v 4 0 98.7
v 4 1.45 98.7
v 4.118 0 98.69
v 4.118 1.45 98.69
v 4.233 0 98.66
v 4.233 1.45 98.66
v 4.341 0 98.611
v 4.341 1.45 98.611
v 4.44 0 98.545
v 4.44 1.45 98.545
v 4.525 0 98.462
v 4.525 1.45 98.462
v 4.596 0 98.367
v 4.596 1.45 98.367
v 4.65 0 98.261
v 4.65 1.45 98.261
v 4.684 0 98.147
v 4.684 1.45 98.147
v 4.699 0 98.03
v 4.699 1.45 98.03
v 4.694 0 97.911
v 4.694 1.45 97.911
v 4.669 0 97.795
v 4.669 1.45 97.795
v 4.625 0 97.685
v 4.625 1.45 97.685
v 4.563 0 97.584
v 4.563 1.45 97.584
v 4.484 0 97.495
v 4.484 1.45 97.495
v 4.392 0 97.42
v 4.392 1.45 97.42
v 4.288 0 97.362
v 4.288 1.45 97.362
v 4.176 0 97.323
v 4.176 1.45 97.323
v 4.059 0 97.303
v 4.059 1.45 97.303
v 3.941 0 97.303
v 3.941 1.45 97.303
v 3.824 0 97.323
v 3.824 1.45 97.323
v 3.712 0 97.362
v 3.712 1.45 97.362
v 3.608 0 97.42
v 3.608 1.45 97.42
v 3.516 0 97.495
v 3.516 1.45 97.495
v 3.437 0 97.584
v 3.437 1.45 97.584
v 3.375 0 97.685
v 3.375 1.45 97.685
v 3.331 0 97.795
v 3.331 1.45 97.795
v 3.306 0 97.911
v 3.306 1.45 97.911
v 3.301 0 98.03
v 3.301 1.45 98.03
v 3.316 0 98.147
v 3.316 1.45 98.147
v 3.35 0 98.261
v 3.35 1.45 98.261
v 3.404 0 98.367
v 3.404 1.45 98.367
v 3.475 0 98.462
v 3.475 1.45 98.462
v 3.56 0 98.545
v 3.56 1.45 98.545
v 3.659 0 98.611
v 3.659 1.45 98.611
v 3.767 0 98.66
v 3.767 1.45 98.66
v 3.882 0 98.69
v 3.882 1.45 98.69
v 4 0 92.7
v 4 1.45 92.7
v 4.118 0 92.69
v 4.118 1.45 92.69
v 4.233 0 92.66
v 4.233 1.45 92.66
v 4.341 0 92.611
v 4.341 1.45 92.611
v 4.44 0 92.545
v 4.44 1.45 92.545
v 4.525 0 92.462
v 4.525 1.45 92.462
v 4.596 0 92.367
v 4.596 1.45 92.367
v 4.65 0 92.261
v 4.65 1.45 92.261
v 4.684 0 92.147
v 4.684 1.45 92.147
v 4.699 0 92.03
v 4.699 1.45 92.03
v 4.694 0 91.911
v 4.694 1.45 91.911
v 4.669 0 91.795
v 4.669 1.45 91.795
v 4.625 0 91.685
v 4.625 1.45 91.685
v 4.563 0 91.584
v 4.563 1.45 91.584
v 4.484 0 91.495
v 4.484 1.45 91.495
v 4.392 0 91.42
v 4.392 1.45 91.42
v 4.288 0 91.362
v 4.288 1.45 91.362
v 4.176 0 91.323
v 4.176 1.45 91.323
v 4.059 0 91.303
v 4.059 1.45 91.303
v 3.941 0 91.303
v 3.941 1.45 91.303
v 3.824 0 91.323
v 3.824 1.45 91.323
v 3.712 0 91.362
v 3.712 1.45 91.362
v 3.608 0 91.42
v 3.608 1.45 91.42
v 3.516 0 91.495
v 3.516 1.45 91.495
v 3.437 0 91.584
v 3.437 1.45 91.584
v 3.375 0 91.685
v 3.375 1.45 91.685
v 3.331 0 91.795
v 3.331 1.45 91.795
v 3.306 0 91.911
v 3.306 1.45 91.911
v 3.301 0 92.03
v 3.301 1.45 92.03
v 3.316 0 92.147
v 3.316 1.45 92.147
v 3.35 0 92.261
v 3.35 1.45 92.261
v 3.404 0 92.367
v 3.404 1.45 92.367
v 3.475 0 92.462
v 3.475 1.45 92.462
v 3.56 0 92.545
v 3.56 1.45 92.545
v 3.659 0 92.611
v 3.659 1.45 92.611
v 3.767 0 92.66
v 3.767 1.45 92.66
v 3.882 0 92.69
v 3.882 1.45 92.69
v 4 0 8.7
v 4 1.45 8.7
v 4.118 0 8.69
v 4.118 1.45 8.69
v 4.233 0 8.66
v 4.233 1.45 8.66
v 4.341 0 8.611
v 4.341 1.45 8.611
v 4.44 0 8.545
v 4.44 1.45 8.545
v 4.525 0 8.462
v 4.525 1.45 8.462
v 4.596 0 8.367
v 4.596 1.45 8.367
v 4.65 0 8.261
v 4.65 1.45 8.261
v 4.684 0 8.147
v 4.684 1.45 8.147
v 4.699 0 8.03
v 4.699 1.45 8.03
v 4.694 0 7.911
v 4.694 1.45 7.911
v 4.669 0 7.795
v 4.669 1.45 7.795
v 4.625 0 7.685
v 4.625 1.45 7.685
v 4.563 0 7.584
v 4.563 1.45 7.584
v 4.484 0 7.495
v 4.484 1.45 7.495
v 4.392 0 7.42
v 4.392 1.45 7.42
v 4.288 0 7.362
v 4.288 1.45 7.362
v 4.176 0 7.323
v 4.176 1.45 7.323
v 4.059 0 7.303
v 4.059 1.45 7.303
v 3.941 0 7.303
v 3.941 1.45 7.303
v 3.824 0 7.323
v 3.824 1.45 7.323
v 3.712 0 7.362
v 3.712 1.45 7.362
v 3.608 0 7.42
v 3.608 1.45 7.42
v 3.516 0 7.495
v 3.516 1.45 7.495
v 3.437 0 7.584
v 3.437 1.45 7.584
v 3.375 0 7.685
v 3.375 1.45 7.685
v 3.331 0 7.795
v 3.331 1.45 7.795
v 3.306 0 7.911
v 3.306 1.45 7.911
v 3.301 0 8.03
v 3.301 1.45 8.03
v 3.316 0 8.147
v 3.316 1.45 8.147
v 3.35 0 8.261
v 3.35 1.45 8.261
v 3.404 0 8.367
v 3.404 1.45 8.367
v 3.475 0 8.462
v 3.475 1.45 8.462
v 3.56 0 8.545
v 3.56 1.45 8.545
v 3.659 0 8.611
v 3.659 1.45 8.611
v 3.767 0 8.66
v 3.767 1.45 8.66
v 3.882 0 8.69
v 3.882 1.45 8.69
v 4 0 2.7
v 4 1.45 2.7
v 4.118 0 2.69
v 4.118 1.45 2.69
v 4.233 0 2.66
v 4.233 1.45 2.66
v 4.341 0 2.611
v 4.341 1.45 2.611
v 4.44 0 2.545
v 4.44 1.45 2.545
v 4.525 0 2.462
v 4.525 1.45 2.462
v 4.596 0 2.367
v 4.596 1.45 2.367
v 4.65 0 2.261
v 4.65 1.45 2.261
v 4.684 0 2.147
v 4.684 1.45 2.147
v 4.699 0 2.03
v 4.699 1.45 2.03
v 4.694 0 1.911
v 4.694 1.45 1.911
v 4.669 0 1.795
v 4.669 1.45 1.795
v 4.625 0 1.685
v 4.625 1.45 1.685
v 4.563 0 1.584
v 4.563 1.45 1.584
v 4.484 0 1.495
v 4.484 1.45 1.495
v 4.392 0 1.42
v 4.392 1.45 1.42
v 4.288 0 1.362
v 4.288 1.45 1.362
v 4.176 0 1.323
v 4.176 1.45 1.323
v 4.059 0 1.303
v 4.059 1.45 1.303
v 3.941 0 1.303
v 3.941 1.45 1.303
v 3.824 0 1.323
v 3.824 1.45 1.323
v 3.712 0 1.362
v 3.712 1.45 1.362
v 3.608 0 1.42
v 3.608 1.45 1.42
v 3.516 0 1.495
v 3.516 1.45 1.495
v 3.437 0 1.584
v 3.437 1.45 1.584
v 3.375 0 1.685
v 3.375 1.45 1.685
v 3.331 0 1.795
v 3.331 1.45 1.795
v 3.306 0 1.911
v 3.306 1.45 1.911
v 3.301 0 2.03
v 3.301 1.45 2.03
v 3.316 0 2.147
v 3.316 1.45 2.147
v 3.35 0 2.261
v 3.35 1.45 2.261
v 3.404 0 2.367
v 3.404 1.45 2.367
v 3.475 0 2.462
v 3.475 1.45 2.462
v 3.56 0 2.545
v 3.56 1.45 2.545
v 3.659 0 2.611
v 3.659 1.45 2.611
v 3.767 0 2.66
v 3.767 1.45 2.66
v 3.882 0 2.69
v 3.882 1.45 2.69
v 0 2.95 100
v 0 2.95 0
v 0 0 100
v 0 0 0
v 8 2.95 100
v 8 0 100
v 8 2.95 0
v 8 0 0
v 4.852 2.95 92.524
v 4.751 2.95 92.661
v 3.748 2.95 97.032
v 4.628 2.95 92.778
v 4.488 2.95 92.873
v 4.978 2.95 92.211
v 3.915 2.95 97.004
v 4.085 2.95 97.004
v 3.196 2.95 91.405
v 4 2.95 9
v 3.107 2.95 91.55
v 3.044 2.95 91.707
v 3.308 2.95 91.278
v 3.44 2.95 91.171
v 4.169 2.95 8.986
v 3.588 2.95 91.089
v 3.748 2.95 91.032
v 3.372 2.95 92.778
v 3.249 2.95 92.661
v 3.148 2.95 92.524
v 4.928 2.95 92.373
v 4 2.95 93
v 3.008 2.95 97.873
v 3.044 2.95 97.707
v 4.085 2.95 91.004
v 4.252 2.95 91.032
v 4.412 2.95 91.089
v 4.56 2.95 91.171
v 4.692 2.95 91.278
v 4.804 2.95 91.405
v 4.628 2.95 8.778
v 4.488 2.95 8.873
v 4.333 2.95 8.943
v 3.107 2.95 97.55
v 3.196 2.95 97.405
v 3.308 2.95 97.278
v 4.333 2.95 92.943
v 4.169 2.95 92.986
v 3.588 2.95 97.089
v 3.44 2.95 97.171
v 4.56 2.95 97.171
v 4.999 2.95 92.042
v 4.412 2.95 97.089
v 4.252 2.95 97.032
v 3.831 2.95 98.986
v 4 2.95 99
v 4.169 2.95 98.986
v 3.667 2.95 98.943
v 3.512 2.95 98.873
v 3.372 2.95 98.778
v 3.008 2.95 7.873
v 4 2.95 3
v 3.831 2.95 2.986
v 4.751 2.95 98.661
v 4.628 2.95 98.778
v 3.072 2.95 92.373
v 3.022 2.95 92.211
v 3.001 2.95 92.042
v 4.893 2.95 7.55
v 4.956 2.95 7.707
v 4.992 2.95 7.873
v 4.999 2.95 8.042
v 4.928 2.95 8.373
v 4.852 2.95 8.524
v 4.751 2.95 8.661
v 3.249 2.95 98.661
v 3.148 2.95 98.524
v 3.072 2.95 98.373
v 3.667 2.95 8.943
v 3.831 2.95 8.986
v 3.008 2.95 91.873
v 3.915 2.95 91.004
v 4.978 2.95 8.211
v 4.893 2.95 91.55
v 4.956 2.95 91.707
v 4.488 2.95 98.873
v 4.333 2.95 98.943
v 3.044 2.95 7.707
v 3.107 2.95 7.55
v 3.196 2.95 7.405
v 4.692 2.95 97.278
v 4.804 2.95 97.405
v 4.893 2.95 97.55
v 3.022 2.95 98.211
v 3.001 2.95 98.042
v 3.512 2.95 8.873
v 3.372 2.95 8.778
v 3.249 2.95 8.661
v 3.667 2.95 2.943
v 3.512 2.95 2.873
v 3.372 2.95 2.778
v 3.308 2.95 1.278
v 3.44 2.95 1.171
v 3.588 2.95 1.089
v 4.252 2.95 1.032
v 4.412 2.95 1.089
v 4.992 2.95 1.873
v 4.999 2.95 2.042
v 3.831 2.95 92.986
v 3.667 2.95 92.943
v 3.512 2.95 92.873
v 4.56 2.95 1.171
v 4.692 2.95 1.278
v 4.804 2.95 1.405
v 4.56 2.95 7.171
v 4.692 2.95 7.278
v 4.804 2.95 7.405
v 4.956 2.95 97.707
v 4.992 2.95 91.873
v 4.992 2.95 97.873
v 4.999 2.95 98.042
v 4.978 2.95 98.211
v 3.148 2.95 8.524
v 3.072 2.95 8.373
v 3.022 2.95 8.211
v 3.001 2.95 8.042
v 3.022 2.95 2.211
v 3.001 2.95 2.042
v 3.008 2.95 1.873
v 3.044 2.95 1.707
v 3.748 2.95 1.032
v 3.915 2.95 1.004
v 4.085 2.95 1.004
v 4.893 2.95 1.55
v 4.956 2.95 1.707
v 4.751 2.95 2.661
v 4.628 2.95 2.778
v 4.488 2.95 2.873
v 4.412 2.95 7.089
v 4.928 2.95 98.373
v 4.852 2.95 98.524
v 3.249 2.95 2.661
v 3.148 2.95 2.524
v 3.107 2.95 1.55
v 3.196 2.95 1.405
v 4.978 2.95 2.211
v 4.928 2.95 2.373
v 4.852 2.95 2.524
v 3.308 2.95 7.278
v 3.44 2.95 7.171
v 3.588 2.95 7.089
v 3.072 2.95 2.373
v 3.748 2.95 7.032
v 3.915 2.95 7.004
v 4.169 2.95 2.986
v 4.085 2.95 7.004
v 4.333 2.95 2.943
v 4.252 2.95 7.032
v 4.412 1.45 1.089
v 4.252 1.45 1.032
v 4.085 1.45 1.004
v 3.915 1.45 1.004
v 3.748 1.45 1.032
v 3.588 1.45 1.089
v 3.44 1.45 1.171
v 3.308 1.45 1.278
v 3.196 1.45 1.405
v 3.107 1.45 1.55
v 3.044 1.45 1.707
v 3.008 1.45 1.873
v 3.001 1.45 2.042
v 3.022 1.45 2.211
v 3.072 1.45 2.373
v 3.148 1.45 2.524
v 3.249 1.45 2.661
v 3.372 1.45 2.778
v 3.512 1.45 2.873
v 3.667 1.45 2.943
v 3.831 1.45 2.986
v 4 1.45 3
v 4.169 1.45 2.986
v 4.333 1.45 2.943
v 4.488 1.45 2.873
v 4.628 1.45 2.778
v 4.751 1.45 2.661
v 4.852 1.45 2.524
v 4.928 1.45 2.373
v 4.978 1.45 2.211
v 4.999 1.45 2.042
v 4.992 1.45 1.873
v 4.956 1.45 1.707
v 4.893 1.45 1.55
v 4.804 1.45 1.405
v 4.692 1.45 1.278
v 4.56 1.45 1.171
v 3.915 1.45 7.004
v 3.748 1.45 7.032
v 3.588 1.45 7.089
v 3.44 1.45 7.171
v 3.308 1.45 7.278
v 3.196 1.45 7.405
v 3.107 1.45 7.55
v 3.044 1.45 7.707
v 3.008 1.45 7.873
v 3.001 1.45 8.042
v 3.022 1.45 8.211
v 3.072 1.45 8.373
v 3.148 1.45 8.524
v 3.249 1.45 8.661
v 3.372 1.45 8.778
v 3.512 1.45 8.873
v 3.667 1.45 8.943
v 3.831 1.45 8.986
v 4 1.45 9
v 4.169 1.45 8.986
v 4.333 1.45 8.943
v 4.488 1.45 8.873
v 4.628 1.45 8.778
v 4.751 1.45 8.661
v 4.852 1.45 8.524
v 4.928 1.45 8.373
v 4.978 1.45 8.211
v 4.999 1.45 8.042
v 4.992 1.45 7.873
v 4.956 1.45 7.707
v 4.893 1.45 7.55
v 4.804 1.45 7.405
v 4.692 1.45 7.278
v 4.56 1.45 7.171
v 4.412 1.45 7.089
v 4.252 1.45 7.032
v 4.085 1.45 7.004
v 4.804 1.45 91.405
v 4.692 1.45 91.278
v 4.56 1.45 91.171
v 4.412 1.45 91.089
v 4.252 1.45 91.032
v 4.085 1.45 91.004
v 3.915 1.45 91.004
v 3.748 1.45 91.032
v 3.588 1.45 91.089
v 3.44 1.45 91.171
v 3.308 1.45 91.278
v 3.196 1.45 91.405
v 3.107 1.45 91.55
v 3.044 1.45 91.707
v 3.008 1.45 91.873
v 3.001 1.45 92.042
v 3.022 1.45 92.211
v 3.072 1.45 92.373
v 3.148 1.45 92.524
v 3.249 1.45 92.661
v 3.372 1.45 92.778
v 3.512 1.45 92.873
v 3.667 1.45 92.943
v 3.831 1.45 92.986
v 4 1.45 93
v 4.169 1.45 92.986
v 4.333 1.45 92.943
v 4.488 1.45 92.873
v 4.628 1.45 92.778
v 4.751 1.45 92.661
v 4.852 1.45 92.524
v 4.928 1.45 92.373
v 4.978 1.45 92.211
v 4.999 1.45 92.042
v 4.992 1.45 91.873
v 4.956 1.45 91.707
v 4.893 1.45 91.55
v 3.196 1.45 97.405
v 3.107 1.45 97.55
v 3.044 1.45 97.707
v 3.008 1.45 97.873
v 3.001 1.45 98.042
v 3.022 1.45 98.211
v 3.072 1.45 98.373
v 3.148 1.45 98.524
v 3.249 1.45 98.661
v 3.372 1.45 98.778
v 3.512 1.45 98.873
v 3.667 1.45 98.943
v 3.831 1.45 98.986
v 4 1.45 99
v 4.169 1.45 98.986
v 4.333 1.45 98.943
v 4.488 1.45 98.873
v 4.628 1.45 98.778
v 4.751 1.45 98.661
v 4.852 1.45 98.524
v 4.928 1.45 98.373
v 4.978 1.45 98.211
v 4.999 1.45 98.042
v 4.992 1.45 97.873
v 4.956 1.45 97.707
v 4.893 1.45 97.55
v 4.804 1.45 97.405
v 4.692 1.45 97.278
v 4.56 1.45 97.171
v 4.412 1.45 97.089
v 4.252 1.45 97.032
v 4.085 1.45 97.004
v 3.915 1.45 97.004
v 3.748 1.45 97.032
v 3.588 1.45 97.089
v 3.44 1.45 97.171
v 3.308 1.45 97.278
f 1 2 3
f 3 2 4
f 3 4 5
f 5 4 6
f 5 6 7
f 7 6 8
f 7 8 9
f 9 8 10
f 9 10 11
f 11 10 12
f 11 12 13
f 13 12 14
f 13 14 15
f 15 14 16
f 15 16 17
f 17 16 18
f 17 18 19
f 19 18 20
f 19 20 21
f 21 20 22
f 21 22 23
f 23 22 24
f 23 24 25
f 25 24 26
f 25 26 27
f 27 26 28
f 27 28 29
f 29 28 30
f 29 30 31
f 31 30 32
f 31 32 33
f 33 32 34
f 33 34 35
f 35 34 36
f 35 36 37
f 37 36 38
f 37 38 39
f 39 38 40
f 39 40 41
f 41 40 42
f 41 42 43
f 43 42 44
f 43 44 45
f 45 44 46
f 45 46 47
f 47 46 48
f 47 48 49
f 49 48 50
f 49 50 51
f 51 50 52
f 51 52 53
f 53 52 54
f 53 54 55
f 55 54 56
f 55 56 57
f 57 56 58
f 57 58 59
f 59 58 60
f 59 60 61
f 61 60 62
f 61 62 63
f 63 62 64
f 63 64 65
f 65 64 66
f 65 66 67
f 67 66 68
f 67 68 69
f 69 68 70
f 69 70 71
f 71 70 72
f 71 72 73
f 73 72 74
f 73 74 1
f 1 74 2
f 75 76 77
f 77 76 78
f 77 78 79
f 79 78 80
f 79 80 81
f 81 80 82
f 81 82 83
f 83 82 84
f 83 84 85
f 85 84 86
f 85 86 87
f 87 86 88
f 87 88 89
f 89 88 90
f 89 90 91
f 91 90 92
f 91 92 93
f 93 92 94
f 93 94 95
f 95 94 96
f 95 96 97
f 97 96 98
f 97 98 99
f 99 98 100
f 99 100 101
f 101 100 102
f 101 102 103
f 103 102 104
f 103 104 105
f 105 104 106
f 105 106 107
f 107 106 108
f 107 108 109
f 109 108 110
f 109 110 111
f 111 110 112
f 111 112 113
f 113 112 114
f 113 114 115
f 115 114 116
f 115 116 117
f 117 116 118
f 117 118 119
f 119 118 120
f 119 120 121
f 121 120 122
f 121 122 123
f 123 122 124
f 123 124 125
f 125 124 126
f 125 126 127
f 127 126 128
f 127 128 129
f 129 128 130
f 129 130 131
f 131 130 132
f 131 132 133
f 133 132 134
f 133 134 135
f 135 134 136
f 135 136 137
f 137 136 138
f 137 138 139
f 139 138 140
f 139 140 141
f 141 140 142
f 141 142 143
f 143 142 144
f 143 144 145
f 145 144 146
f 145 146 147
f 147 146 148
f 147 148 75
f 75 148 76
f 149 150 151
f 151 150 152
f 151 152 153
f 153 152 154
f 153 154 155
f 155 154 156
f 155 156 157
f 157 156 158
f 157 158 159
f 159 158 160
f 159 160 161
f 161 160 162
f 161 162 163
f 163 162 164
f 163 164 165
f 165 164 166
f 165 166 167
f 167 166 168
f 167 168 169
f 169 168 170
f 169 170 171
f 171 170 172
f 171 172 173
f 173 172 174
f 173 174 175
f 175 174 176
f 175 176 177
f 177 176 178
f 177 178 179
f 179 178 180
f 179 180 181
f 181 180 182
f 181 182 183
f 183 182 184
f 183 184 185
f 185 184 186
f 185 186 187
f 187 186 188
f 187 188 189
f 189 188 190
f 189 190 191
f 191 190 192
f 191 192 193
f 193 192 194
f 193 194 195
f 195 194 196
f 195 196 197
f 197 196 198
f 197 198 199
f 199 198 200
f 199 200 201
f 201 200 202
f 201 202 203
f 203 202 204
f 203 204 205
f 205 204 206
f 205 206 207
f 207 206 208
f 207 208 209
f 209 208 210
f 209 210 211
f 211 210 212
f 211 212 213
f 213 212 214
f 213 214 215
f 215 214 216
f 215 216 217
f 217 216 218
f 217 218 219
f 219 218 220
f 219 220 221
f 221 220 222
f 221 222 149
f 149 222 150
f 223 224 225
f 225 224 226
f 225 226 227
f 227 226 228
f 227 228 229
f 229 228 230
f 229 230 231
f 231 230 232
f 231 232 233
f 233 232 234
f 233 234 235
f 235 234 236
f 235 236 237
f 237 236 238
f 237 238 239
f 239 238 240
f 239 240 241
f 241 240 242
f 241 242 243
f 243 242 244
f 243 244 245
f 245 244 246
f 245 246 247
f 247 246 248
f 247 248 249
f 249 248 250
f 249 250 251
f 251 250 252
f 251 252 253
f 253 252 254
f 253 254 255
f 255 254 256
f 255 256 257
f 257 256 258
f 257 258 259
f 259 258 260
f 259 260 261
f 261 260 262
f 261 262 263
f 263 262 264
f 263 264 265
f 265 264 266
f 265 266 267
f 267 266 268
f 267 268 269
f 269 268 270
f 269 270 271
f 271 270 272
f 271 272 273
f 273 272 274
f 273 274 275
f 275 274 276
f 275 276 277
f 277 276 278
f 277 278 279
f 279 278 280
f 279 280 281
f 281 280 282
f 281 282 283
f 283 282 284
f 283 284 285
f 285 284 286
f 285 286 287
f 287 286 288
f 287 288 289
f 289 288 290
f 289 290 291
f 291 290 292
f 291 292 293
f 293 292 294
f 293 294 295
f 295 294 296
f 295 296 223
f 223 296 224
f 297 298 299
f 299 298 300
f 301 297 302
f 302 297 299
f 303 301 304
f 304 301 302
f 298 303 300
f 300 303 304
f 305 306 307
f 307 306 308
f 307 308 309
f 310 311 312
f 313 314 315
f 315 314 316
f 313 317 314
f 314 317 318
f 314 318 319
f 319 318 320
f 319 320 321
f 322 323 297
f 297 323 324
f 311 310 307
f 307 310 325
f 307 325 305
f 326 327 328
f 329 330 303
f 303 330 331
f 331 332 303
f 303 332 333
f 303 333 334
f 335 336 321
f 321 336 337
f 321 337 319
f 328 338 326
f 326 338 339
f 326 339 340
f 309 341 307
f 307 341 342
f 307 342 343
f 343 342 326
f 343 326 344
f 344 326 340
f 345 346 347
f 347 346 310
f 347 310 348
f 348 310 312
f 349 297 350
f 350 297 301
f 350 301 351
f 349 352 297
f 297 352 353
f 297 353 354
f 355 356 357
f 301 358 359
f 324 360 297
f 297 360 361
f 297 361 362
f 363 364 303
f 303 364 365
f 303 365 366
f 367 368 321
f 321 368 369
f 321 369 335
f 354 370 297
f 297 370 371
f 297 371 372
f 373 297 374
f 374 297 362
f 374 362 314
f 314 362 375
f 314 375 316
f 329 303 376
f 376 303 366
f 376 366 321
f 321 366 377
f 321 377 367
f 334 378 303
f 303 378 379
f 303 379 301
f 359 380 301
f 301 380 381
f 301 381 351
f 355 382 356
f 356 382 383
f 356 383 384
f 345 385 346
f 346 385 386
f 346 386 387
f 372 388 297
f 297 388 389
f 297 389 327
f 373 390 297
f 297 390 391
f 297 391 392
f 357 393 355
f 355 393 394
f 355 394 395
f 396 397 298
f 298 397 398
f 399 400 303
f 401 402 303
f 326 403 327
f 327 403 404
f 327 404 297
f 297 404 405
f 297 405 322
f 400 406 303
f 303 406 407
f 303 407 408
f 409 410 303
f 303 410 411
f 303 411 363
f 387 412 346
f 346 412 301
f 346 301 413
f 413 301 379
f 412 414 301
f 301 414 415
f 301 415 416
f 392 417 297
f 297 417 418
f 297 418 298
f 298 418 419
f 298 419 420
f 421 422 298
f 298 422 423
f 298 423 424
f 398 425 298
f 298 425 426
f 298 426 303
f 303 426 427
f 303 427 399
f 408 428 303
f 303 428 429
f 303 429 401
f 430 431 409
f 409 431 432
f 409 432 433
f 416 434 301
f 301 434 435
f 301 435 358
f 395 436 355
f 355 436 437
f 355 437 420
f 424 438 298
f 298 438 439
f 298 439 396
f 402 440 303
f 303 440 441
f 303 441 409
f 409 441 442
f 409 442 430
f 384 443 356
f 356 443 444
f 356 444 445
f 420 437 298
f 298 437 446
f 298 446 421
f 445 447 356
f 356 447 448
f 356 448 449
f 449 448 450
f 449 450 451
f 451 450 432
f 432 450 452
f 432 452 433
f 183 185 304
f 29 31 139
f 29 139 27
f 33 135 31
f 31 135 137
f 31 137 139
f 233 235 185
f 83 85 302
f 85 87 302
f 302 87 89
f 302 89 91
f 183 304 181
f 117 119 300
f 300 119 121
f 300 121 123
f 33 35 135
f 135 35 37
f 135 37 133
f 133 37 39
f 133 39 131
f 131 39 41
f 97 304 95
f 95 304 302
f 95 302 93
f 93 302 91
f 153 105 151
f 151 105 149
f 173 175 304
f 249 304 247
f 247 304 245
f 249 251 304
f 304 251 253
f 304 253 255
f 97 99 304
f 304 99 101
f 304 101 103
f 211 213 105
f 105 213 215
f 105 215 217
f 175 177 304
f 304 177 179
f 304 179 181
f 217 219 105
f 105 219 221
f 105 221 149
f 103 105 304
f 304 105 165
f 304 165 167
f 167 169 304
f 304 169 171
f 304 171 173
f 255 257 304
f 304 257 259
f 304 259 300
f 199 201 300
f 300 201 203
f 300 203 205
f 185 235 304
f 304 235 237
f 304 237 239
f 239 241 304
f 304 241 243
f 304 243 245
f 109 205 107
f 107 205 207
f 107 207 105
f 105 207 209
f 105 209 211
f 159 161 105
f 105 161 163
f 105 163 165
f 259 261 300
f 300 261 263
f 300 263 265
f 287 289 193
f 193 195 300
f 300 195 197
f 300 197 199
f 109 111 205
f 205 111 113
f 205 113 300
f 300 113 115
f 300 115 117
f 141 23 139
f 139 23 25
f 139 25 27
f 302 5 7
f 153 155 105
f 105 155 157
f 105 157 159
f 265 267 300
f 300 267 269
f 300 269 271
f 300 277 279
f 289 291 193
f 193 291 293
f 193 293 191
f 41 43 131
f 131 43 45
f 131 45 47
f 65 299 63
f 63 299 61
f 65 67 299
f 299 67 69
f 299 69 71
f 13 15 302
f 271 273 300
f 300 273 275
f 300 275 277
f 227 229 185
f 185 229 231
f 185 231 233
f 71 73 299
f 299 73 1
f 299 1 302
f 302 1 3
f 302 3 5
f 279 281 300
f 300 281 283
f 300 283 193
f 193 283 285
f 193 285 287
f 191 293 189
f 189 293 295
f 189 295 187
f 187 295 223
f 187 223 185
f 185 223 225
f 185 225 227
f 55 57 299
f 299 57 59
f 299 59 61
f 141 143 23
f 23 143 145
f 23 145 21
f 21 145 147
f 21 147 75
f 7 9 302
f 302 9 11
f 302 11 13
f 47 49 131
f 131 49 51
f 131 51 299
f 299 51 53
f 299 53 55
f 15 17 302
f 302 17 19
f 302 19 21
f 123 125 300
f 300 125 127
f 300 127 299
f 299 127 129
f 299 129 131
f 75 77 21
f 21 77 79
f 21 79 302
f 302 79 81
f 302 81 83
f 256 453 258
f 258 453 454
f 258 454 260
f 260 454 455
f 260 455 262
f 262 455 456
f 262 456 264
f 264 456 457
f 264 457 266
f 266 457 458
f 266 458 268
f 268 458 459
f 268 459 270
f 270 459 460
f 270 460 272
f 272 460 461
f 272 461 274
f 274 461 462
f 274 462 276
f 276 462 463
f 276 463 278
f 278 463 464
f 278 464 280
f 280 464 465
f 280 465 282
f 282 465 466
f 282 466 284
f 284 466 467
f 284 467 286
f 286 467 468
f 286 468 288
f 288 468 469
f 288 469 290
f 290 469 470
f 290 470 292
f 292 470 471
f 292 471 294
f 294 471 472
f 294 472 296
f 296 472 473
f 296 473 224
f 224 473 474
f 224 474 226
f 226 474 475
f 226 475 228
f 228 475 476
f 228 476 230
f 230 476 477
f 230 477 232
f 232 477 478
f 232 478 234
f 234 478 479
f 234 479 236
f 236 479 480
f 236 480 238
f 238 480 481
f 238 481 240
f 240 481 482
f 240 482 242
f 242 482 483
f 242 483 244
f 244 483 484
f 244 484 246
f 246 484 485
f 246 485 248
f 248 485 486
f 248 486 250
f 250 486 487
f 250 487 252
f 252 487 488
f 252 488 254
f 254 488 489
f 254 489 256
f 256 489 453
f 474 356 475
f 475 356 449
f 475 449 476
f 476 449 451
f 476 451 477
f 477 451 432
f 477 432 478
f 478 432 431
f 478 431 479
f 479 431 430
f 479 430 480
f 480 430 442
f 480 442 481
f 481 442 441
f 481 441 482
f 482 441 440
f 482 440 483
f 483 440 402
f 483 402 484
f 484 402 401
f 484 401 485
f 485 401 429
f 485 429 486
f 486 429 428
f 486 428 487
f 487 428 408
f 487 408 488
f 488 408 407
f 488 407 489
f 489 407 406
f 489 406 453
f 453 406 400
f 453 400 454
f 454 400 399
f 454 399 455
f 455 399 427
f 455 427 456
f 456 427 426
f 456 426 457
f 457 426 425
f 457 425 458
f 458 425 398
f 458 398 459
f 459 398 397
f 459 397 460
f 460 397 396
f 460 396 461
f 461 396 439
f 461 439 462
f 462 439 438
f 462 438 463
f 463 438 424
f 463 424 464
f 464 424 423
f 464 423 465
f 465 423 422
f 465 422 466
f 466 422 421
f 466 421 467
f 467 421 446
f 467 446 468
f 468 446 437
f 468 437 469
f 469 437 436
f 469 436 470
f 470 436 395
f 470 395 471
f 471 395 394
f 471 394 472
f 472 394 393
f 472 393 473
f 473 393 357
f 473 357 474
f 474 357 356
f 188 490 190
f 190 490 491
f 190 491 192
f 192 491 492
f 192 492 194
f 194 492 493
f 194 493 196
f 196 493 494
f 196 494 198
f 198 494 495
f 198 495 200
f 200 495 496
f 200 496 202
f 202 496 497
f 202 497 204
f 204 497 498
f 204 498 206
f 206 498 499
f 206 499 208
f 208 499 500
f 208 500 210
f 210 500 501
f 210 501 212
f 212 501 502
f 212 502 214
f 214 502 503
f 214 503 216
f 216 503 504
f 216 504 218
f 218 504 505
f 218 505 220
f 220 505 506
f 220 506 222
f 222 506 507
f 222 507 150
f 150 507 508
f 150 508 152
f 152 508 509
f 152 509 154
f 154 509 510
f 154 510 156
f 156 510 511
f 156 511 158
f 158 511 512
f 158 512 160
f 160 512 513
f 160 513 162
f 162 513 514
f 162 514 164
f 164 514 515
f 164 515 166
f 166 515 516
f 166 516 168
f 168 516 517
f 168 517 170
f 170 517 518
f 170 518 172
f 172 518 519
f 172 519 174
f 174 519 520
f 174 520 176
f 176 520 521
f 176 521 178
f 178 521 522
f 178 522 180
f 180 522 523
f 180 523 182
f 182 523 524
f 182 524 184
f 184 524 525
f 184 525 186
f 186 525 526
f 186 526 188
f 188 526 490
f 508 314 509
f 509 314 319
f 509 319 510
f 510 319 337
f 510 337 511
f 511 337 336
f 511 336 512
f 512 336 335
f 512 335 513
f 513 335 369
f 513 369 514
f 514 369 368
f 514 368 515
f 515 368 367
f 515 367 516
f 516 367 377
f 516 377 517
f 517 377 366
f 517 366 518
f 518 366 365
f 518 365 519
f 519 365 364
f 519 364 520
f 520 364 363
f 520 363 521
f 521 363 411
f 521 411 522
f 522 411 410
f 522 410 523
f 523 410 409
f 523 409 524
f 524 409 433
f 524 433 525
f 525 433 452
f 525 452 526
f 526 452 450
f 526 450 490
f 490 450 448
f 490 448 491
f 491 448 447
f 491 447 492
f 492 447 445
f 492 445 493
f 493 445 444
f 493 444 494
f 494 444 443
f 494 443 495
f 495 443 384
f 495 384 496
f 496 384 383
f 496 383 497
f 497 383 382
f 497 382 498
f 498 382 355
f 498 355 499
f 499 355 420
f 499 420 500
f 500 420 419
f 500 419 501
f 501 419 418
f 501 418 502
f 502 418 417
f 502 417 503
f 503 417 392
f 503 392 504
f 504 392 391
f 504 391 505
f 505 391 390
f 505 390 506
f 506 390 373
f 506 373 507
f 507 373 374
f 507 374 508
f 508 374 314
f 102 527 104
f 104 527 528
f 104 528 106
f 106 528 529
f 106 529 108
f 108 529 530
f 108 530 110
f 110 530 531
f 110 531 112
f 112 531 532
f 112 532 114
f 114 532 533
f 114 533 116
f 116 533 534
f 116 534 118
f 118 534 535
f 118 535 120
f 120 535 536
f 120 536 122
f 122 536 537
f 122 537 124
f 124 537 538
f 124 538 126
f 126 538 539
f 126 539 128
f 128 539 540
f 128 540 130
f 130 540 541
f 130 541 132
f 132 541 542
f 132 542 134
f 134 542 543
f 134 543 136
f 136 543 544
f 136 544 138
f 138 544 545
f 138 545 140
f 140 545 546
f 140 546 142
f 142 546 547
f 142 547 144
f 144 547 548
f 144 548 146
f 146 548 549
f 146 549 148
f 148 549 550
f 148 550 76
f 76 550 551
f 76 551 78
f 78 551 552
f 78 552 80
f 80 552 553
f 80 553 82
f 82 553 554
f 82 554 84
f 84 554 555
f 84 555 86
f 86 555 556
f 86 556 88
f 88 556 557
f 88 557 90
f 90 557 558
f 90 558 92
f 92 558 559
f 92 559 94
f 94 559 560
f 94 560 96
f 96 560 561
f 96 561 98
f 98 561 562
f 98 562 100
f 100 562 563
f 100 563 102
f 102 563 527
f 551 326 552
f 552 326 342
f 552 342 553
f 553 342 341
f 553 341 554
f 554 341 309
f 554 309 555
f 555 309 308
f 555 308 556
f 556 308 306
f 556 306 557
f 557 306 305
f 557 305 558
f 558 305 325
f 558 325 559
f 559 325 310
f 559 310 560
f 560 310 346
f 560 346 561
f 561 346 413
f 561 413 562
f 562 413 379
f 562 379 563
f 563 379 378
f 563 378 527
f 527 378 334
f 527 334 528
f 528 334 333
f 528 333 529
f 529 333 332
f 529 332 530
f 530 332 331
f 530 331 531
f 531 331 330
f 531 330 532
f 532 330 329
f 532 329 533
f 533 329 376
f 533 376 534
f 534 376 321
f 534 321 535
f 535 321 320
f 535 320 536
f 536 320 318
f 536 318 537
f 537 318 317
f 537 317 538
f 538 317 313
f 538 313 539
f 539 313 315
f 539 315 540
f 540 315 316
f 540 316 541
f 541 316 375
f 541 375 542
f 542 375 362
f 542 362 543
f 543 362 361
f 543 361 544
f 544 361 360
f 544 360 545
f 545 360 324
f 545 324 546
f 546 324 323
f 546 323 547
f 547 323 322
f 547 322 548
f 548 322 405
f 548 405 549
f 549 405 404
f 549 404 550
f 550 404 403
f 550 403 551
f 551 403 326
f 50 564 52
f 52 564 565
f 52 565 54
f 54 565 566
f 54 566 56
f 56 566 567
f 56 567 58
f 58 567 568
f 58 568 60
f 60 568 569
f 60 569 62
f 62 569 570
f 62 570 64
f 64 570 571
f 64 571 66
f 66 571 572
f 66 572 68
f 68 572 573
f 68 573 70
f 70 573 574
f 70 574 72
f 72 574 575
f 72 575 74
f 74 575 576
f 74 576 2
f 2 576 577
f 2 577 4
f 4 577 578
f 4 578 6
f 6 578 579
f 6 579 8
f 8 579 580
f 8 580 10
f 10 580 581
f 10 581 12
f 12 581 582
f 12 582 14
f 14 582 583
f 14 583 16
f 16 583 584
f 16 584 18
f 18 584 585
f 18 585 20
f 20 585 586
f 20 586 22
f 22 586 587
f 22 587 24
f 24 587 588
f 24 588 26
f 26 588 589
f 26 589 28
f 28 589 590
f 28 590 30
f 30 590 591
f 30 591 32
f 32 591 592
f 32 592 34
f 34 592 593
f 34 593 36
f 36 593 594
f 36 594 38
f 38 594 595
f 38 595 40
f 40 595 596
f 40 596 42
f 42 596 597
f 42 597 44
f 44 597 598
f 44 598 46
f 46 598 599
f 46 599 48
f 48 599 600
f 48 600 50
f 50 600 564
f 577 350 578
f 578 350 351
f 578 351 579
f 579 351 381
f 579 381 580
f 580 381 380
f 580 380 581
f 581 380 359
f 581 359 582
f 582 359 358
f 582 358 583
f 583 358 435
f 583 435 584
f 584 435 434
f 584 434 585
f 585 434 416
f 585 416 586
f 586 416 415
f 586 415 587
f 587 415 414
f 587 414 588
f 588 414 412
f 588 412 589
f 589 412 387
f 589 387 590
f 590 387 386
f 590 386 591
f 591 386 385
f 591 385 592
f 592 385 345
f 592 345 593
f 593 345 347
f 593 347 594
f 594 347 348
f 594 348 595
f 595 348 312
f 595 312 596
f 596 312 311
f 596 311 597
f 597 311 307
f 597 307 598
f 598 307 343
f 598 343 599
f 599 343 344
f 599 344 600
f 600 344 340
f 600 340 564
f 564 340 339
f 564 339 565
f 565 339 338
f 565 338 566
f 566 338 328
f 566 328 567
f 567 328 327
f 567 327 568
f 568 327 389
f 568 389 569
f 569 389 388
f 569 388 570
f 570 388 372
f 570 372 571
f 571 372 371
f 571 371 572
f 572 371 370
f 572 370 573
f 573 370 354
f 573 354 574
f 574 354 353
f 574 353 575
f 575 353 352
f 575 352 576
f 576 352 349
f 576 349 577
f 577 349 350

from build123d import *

# Parameters (mm, degrees)
SKETCH_1_W          = 8
SKETCH_1_H          = 100
EXTRUDE_1_DEPTH     = 2.95
SKETCH_2_R          = 0.7
CUT_EXTRUDE_1_DEPTH = 101.362854184
SKETCH_2_3_R        = 1
CUT_EXTRUDE_2_DEPTH = 1.5


with BuildPart() as part:
    # 草图1 → 凸台-拉伸1 (new body)
    with BuildSketch(Plane(origin=(0, 0, 0), x_dir=(1, 0, 0), z_dir=(0, 1, 0))):
        with Locations((4, -50)):
            Rectangle(SKETCH_1_W, SKETCH_1_H)
    extrude(amount=EXTRUDE_1_DEPTH)

    # 草图2 → 切除-拉伸1 (cut, through all)
    with BuildSketch(Plane(origin=(0, 2.95, 0), x_dir=(1, 0, 0), z_dir=(0, 1, 0))):
        with Locations((4, -8)):
            Circle(SKETCH_2_R)
        with Locations((4, -2)):
            Circle(SKETCH_2_R)
        with Locations((4, -98)):
            Circle(SKETCH_2_R)
        with Locations((4, -92)):
            Circle(SKETCH_2_R)
    extrude(amount=-CUT_EXTRUDE_1_DEPTH, mode=Mode.SUBTRACT)

    # 草图2<3> → 切除-拉伸2 (cut)
    with BuildSketch(Plane(origin=(0, 2.95, 0), x_dir=(1, 0, 0), z_dir=(0, 1, 0))):
        with Locations((4, -8)):
            Circle(SKETCH_2_3_R)
        with Locations((4, -2)):
            Circle(SKETCH_2_3_R)
        with Locations((4, -98)):
            Circle(SKETCH_2_3_R)
        with Locations((4, -92)):
            Circle(SKETCH_2_3_R)
    extrude(amount=-CUT_EXTRUDE_2_DEPTH, mode=Mode.SUBTRACT)


solid = part.part
